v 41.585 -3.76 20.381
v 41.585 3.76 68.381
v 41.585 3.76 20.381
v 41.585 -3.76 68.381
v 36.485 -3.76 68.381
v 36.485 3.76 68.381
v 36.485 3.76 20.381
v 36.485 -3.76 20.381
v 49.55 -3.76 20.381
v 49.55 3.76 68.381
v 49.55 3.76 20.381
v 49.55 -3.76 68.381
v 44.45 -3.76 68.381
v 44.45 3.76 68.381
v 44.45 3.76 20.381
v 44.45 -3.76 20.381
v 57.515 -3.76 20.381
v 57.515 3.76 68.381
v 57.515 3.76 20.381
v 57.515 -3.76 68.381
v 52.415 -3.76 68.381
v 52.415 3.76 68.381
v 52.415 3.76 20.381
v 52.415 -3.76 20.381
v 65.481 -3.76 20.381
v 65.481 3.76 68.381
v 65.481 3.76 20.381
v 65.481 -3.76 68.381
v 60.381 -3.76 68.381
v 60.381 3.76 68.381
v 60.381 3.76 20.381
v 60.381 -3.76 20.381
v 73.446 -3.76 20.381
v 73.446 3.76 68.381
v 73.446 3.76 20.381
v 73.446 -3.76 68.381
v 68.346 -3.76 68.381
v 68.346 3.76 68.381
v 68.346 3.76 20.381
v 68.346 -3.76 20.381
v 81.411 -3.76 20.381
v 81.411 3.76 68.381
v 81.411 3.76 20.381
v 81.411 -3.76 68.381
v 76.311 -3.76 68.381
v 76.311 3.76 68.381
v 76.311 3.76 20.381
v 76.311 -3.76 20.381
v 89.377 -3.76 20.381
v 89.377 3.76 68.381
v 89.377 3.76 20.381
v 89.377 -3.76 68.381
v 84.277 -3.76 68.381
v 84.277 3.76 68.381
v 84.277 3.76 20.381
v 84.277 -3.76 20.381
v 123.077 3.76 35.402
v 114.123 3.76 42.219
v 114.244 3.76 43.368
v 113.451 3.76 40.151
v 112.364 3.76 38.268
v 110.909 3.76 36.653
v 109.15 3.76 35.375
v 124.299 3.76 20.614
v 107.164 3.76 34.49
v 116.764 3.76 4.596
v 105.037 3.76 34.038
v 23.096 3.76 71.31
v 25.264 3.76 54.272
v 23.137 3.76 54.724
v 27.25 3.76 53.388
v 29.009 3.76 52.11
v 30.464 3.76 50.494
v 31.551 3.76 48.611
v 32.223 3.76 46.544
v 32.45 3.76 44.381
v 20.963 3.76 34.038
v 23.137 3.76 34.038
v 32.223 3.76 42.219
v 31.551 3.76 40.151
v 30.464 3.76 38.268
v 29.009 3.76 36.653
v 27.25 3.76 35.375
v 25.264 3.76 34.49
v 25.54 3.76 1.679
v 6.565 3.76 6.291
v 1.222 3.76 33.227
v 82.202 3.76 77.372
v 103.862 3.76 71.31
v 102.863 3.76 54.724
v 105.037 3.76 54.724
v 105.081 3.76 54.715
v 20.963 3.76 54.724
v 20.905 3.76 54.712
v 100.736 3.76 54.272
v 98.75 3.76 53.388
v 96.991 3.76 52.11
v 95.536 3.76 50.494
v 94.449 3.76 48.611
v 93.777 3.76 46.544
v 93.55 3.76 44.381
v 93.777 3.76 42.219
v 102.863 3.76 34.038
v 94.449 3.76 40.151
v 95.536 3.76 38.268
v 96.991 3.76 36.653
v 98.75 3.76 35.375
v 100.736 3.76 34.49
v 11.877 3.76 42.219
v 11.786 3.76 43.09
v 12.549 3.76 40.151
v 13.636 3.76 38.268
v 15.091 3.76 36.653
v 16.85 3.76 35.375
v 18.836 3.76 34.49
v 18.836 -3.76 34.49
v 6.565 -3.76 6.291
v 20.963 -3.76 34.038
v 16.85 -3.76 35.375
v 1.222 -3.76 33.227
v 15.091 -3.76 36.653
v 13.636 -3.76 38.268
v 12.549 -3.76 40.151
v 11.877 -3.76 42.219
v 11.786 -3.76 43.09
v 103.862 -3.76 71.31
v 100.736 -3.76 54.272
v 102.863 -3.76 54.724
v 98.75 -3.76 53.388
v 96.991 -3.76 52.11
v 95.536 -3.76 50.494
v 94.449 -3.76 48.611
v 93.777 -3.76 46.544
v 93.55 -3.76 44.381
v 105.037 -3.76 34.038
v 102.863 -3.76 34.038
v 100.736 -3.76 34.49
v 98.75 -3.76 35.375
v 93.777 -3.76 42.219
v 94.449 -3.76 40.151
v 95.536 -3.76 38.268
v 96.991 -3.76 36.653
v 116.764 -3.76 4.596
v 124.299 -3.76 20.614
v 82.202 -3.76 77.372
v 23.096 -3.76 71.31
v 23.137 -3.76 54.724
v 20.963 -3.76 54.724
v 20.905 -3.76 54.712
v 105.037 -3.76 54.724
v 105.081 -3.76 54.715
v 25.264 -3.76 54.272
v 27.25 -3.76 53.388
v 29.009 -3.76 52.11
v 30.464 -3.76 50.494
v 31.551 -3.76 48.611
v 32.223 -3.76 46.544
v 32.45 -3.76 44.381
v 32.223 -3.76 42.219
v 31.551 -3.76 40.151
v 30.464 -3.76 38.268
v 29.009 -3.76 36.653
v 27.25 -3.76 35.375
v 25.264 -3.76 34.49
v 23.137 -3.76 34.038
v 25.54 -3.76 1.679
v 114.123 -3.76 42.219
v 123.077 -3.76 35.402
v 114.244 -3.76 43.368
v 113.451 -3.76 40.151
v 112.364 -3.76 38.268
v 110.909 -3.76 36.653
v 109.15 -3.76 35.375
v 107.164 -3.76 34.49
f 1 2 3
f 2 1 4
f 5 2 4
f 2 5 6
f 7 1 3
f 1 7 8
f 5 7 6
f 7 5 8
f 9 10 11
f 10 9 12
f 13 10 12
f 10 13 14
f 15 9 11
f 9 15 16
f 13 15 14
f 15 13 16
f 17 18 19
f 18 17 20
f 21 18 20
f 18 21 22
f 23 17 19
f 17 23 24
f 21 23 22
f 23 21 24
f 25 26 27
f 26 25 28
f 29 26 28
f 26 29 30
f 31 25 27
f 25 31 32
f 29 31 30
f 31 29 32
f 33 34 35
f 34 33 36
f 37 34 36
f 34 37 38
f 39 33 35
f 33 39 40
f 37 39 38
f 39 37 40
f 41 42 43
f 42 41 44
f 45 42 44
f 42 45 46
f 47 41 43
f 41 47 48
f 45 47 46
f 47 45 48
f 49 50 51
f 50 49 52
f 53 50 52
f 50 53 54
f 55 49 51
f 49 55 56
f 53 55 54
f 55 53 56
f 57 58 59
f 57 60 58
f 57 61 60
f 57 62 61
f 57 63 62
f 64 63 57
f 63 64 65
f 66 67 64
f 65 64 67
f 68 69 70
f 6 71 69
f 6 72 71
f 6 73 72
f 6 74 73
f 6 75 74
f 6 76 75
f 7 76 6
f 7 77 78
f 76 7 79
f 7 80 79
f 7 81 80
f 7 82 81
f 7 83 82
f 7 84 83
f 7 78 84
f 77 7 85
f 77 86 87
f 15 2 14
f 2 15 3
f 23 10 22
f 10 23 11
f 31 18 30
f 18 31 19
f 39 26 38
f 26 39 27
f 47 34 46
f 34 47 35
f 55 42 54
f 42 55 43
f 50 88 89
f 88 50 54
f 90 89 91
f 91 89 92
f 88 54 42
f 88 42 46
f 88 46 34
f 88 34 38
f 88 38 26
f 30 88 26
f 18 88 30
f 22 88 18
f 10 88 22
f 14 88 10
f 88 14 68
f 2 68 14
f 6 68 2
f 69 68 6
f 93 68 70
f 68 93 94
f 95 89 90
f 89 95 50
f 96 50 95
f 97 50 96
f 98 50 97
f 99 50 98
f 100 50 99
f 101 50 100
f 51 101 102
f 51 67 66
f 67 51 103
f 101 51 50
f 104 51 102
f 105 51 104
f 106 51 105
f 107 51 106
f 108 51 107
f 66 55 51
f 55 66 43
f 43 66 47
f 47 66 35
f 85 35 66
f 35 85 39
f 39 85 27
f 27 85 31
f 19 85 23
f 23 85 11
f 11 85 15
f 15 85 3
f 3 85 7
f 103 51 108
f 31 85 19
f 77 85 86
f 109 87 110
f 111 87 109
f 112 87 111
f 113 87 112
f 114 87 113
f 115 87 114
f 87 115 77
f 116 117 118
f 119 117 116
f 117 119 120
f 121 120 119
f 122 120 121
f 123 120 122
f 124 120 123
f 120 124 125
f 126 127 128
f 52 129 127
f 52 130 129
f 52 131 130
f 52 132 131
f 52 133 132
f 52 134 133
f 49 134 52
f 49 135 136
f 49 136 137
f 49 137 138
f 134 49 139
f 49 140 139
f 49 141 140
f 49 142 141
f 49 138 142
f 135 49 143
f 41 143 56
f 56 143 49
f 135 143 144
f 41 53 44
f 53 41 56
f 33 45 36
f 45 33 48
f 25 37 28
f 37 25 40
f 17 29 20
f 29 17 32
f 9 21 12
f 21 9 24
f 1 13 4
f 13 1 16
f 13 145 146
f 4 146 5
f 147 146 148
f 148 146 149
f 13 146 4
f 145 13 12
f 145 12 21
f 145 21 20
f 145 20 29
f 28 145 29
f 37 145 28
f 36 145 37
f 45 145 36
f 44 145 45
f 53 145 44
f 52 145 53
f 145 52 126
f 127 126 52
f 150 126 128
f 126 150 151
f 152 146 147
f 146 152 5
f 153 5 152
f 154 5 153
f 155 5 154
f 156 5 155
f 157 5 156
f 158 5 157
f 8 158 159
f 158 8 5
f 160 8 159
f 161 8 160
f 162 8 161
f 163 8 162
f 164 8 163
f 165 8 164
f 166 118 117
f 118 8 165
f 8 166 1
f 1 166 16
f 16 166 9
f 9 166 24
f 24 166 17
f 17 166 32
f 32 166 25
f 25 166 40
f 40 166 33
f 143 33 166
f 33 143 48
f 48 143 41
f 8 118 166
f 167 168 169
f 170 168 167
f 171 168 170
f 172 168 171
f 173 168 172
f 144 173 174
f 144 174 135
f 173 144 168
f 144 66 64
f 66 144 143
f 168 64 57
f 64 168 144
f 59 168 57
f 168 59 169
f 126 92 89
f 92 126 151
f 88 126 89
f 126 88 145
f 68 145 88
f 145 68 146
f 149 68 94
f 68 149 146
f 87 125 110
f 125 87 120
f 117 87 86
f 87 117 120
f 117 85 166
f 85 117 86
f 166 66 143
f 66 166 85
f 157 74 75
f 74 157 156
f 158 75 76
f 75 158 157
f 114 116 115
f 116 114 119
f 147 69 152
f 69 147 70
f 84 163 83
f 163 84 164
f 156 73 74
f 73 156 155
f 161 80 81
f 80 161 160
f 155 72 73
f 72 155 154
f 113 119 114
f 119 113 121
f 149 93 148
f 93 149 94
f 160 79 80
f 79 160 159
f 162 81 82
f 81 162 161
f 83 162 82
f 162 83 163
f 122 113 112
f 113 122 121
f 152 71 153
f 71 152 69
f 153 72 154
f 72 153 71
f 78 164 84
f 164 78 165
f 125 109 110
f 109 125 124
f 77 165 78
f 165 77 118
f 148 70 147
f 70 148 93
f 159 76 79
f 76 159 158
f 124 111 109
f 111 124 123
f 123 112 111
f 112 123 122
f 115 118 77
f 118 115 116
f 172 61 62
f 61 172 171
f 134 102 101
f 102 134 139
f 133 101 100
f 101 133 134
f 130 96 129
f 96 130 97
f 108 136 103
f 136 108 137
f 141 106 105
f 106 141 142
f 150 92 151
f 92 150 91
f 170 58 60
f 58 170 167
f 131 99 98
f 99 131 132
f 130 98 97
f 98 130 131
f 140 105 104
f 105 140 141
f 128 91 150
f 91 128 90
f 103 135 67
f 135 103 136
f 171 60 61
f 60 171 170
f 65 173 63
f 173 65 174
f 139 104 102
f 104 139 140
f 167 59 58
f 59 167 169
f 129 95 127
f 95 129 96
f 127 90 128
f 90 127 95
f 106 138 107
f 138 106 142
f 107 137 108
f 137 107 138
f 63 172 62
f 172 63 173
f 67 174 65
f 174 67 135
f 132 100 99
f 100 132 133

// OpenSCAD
/* doodle-meta {"version":1,"parameters":{"width":{"label":"Overall width","description":"Changes the body width","unit":"mm","feature":"body_width"},"height":{"label":"Overall height","description":"Changes the body height","unit":"mm","feature":"body_height"},"thickness":{"label":"Panel thickness","description":"Changes the panel depth","unit":"mm","feature":"body_thickness"},"slot_count":{"label":"Grille slot count","description":"Number of vertical grille slots","unit":"count","feature":"grille_slots"},"slot_width":{"label":"Grille slot width","description":"Width of each vertical grille slot","unit":"mm","feature":"grille_slots"},"slot_height":{"label":"Grille slot height","description":"Height of each vertical grille slot","unit":"mm","feature":"grille_slots"},"headlight_diameter":{"label":"Headlight diameter","description":"Diameter of the circular headlight cutouts","unit":"mm","feature":"headlights"}},"features":{"body_width":{"kind":"dimension","axis":"x","label":"Overall width"},"body_height":{"kind":"dimension","axis":"z","label":"Overall height"},"body_thickness":{"kind":"dimension","axis":"y","label":"Panel thickness"},"grille_slots":{"kind":"region","label":"Grille slots","min":[{"parameter":"width","scale":0.35},{"parameter":"thickness","scale":-0.1},{"parameter":"height","scale":0.13}],"max":[{"parameter":"width","scale":0.65},{"parameter":"thickness","scale":1.1},{"parameter":"height","scale":0.74}]},"headlights":{"kind":"region","label":"Headlights","min":[{"parameter":"width","scale":0.09},{"parameter":"thickness","scale":-0.1},{"parameter":"height","scale":0.37}],"max":[{"parameter":"width","scale":0.91},{"parameter":"thickness","scale":1.1},{"parameter":"height","scale":0.75}]}}} */

// Parameters
width = 126.0;
height = 78.83;
thickness = 7.52;
slot_count = 7;
slot_width = 5.1;
slot_height = 48.0;
headlight_diameter = 20.8;

// Derived sizes
eps = 0.01;
slot_pitch = width * 0.0625; // Approximate pitch based on measured centers
slot_start_x = width * 0.31; // Center of first slot
headlight_x = width * 0.175; // Center of left headlight
headlight_z = height * 0.563; // Center of headlights (from bottom)

module grille_body() {
    // Main panel body
    // The outer profile is roughly rectangular with rounded corners in the front view.
    // We approximate it with a cube for the main body, as the polygon is complex and 
    // the intent is a flat panel. The "rounded corners" in the description might refer 
    // to the overall shape or specific features, but a rectangular panel is the safest 
    // interpretation of "flat panel" with "complex outer boundary" that is mostly rectangular.
    // However, looking at the polygon, it has angled sides. 
    // Let's create a polygon for the front face and extrude it.
    
    // Front face polygon points (X, Z) normalized to 0..1 then scaled
    // Using the measured outer profile from view_2
    // Note: The polygon is defined in view coordinates (u, v).
    // u -> X, v -> Z (inverted because v is down, Z is up)
    
    polygon_points = [
        [0.0097 * width, (1 - 0.5785) * height],
        [0.0521 * width, (1 - 0.9202) * height],
        [0.2027 * width, (1 - 0.9787) * height],
        [0.9267 * width, (1 - 0.9417) * height],
        [0.9865 * width, (1 - 0.7385) * height],
        [0.9768 * width, (1 - 0.5509) * height],
        [0.8359 * width, (1 - 0.3478) * height],
        [0.8243 * width, (1 - 0.0954) * height],
        [0.6524 * width, (1 - 0.0185) * height],
        [0.1833 * width, (1 - 0.0954) * height],
        [0.1622 * width, (1 - 0.3509) * height]
    ];
    
    // Extrude the polygon along Y
    rotate([90, 0, 0])
    linear_extrude(height = thickness, center = true) {
        polygon(polygon_points);
    }
}

module headlight_cutout(x_pos) {
    // Circular cutout through the panel
    // Axis is Y (front-to-back)
    translate([x_pos, 0, headlight_z]) {
        rotate([90, 0, 0]) {
            cylinder(h = thickness + 2*eps, d = headlight_diameter, center = true);
        }
    }
}

module grille_slot(x_pos) {
    // Vertical rectangular slot
    // Axis is Y (front-to-back)
    // Slot is centered at x_pos, and vertically centered at height/2 roughly?
    // Measured center v is ~0.437. 
    // Z_center = (1 - 0.437) * height = 0.563 * height
    z_center = (1 - 0.437) * height;
    
    translate([x_pos, 0, z_center]) {
        cube([slot_width, thickness + 2*eps, slot_height], center = true);
    }
}

// Main design
difference() {
    // 1. Positive Body
    grille_body();
    
    // 2. Subtract Headlights
    headlight_cutout(headlight_x);
    headlight_cutout(width - headlight_x);
    
    // 3. Subtract Grille Slots
    for (i = [0 : slot_count - 1]) {
        // Calculate position for each slot
        // The slots are centered around the middle.
        // Total width of slots array = (slot_count - 1) * pitch
        // Start X = Center - TotalWidth/2
        // Or simply use the measured start and pitch.
        // Measured centers: 0.3098, 0.3736, 0.4353, 0.499, 0.5628, 0.6264, 0.6891
        // These are roughly evenly spaced.
        // Let's use the measured center of the first slot and the pitch.
        // First slot center u = 0.3098 -> X = 0.3098 * width
        // Pitch in u = (0.6891 - 0.3098) / 6 = 0.0632
        // Pitch in mm = 0.0632 * width
        
        slot_pitch_mm = (0.6891 - 0.3098) / 6 * width;
        slot_start_x_mm = 0.3098 * width;
        
        current_x = slot_start_x_mm + i * slot_pitch_mm;
        
        grille_slot(current_x);
    }
}
